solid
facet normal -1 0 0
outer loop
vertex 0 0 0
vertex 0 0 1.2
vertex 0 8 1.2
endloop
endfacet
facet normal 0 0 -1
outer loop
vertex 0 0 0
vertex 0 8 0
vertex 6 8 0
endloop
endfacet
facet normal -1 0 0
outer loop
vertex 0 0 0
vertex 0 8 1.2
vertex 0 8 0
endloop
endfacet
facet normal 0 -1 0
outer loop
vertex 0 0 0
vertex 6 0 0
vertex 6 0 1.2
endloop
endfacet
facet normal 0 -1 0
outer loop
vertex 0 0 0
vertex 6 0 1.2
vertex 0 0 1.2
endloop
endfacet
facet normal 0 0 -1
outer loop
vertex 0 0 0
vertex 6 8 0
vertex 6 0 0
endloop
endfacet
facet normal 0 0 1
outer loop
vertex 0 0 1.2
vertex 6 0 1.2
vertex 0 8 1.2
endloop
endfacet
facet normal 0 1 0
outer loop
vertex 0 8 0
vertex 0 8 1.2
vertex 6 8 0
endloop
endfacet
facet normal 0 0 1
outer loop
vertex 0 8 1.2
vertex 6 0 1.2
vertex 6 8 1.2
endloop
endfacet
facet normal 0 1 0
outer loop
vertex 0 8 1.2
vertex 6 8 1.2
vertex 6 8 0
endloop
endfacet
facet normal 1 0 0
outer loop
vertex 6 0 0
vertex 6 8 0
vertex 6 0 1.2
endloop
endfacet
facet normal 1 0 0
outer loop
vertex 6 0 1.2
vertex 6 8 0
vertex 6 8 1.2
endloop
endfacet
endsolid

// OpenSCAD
/* Warning, this is a very basic generator with a lot of approximation 
input data : [TBGA, 4DX, 6x8x1.2mm, 24, , B, C04-00199B]
generated by com.zoubworld.electronics.cad.model3d.Basic
Date : Sun Feb 15 10:50:48 CET 2026
*/

//body
color("black")
translate([0,0,0])
cube([6.0,8.0,1.2], center=false);
